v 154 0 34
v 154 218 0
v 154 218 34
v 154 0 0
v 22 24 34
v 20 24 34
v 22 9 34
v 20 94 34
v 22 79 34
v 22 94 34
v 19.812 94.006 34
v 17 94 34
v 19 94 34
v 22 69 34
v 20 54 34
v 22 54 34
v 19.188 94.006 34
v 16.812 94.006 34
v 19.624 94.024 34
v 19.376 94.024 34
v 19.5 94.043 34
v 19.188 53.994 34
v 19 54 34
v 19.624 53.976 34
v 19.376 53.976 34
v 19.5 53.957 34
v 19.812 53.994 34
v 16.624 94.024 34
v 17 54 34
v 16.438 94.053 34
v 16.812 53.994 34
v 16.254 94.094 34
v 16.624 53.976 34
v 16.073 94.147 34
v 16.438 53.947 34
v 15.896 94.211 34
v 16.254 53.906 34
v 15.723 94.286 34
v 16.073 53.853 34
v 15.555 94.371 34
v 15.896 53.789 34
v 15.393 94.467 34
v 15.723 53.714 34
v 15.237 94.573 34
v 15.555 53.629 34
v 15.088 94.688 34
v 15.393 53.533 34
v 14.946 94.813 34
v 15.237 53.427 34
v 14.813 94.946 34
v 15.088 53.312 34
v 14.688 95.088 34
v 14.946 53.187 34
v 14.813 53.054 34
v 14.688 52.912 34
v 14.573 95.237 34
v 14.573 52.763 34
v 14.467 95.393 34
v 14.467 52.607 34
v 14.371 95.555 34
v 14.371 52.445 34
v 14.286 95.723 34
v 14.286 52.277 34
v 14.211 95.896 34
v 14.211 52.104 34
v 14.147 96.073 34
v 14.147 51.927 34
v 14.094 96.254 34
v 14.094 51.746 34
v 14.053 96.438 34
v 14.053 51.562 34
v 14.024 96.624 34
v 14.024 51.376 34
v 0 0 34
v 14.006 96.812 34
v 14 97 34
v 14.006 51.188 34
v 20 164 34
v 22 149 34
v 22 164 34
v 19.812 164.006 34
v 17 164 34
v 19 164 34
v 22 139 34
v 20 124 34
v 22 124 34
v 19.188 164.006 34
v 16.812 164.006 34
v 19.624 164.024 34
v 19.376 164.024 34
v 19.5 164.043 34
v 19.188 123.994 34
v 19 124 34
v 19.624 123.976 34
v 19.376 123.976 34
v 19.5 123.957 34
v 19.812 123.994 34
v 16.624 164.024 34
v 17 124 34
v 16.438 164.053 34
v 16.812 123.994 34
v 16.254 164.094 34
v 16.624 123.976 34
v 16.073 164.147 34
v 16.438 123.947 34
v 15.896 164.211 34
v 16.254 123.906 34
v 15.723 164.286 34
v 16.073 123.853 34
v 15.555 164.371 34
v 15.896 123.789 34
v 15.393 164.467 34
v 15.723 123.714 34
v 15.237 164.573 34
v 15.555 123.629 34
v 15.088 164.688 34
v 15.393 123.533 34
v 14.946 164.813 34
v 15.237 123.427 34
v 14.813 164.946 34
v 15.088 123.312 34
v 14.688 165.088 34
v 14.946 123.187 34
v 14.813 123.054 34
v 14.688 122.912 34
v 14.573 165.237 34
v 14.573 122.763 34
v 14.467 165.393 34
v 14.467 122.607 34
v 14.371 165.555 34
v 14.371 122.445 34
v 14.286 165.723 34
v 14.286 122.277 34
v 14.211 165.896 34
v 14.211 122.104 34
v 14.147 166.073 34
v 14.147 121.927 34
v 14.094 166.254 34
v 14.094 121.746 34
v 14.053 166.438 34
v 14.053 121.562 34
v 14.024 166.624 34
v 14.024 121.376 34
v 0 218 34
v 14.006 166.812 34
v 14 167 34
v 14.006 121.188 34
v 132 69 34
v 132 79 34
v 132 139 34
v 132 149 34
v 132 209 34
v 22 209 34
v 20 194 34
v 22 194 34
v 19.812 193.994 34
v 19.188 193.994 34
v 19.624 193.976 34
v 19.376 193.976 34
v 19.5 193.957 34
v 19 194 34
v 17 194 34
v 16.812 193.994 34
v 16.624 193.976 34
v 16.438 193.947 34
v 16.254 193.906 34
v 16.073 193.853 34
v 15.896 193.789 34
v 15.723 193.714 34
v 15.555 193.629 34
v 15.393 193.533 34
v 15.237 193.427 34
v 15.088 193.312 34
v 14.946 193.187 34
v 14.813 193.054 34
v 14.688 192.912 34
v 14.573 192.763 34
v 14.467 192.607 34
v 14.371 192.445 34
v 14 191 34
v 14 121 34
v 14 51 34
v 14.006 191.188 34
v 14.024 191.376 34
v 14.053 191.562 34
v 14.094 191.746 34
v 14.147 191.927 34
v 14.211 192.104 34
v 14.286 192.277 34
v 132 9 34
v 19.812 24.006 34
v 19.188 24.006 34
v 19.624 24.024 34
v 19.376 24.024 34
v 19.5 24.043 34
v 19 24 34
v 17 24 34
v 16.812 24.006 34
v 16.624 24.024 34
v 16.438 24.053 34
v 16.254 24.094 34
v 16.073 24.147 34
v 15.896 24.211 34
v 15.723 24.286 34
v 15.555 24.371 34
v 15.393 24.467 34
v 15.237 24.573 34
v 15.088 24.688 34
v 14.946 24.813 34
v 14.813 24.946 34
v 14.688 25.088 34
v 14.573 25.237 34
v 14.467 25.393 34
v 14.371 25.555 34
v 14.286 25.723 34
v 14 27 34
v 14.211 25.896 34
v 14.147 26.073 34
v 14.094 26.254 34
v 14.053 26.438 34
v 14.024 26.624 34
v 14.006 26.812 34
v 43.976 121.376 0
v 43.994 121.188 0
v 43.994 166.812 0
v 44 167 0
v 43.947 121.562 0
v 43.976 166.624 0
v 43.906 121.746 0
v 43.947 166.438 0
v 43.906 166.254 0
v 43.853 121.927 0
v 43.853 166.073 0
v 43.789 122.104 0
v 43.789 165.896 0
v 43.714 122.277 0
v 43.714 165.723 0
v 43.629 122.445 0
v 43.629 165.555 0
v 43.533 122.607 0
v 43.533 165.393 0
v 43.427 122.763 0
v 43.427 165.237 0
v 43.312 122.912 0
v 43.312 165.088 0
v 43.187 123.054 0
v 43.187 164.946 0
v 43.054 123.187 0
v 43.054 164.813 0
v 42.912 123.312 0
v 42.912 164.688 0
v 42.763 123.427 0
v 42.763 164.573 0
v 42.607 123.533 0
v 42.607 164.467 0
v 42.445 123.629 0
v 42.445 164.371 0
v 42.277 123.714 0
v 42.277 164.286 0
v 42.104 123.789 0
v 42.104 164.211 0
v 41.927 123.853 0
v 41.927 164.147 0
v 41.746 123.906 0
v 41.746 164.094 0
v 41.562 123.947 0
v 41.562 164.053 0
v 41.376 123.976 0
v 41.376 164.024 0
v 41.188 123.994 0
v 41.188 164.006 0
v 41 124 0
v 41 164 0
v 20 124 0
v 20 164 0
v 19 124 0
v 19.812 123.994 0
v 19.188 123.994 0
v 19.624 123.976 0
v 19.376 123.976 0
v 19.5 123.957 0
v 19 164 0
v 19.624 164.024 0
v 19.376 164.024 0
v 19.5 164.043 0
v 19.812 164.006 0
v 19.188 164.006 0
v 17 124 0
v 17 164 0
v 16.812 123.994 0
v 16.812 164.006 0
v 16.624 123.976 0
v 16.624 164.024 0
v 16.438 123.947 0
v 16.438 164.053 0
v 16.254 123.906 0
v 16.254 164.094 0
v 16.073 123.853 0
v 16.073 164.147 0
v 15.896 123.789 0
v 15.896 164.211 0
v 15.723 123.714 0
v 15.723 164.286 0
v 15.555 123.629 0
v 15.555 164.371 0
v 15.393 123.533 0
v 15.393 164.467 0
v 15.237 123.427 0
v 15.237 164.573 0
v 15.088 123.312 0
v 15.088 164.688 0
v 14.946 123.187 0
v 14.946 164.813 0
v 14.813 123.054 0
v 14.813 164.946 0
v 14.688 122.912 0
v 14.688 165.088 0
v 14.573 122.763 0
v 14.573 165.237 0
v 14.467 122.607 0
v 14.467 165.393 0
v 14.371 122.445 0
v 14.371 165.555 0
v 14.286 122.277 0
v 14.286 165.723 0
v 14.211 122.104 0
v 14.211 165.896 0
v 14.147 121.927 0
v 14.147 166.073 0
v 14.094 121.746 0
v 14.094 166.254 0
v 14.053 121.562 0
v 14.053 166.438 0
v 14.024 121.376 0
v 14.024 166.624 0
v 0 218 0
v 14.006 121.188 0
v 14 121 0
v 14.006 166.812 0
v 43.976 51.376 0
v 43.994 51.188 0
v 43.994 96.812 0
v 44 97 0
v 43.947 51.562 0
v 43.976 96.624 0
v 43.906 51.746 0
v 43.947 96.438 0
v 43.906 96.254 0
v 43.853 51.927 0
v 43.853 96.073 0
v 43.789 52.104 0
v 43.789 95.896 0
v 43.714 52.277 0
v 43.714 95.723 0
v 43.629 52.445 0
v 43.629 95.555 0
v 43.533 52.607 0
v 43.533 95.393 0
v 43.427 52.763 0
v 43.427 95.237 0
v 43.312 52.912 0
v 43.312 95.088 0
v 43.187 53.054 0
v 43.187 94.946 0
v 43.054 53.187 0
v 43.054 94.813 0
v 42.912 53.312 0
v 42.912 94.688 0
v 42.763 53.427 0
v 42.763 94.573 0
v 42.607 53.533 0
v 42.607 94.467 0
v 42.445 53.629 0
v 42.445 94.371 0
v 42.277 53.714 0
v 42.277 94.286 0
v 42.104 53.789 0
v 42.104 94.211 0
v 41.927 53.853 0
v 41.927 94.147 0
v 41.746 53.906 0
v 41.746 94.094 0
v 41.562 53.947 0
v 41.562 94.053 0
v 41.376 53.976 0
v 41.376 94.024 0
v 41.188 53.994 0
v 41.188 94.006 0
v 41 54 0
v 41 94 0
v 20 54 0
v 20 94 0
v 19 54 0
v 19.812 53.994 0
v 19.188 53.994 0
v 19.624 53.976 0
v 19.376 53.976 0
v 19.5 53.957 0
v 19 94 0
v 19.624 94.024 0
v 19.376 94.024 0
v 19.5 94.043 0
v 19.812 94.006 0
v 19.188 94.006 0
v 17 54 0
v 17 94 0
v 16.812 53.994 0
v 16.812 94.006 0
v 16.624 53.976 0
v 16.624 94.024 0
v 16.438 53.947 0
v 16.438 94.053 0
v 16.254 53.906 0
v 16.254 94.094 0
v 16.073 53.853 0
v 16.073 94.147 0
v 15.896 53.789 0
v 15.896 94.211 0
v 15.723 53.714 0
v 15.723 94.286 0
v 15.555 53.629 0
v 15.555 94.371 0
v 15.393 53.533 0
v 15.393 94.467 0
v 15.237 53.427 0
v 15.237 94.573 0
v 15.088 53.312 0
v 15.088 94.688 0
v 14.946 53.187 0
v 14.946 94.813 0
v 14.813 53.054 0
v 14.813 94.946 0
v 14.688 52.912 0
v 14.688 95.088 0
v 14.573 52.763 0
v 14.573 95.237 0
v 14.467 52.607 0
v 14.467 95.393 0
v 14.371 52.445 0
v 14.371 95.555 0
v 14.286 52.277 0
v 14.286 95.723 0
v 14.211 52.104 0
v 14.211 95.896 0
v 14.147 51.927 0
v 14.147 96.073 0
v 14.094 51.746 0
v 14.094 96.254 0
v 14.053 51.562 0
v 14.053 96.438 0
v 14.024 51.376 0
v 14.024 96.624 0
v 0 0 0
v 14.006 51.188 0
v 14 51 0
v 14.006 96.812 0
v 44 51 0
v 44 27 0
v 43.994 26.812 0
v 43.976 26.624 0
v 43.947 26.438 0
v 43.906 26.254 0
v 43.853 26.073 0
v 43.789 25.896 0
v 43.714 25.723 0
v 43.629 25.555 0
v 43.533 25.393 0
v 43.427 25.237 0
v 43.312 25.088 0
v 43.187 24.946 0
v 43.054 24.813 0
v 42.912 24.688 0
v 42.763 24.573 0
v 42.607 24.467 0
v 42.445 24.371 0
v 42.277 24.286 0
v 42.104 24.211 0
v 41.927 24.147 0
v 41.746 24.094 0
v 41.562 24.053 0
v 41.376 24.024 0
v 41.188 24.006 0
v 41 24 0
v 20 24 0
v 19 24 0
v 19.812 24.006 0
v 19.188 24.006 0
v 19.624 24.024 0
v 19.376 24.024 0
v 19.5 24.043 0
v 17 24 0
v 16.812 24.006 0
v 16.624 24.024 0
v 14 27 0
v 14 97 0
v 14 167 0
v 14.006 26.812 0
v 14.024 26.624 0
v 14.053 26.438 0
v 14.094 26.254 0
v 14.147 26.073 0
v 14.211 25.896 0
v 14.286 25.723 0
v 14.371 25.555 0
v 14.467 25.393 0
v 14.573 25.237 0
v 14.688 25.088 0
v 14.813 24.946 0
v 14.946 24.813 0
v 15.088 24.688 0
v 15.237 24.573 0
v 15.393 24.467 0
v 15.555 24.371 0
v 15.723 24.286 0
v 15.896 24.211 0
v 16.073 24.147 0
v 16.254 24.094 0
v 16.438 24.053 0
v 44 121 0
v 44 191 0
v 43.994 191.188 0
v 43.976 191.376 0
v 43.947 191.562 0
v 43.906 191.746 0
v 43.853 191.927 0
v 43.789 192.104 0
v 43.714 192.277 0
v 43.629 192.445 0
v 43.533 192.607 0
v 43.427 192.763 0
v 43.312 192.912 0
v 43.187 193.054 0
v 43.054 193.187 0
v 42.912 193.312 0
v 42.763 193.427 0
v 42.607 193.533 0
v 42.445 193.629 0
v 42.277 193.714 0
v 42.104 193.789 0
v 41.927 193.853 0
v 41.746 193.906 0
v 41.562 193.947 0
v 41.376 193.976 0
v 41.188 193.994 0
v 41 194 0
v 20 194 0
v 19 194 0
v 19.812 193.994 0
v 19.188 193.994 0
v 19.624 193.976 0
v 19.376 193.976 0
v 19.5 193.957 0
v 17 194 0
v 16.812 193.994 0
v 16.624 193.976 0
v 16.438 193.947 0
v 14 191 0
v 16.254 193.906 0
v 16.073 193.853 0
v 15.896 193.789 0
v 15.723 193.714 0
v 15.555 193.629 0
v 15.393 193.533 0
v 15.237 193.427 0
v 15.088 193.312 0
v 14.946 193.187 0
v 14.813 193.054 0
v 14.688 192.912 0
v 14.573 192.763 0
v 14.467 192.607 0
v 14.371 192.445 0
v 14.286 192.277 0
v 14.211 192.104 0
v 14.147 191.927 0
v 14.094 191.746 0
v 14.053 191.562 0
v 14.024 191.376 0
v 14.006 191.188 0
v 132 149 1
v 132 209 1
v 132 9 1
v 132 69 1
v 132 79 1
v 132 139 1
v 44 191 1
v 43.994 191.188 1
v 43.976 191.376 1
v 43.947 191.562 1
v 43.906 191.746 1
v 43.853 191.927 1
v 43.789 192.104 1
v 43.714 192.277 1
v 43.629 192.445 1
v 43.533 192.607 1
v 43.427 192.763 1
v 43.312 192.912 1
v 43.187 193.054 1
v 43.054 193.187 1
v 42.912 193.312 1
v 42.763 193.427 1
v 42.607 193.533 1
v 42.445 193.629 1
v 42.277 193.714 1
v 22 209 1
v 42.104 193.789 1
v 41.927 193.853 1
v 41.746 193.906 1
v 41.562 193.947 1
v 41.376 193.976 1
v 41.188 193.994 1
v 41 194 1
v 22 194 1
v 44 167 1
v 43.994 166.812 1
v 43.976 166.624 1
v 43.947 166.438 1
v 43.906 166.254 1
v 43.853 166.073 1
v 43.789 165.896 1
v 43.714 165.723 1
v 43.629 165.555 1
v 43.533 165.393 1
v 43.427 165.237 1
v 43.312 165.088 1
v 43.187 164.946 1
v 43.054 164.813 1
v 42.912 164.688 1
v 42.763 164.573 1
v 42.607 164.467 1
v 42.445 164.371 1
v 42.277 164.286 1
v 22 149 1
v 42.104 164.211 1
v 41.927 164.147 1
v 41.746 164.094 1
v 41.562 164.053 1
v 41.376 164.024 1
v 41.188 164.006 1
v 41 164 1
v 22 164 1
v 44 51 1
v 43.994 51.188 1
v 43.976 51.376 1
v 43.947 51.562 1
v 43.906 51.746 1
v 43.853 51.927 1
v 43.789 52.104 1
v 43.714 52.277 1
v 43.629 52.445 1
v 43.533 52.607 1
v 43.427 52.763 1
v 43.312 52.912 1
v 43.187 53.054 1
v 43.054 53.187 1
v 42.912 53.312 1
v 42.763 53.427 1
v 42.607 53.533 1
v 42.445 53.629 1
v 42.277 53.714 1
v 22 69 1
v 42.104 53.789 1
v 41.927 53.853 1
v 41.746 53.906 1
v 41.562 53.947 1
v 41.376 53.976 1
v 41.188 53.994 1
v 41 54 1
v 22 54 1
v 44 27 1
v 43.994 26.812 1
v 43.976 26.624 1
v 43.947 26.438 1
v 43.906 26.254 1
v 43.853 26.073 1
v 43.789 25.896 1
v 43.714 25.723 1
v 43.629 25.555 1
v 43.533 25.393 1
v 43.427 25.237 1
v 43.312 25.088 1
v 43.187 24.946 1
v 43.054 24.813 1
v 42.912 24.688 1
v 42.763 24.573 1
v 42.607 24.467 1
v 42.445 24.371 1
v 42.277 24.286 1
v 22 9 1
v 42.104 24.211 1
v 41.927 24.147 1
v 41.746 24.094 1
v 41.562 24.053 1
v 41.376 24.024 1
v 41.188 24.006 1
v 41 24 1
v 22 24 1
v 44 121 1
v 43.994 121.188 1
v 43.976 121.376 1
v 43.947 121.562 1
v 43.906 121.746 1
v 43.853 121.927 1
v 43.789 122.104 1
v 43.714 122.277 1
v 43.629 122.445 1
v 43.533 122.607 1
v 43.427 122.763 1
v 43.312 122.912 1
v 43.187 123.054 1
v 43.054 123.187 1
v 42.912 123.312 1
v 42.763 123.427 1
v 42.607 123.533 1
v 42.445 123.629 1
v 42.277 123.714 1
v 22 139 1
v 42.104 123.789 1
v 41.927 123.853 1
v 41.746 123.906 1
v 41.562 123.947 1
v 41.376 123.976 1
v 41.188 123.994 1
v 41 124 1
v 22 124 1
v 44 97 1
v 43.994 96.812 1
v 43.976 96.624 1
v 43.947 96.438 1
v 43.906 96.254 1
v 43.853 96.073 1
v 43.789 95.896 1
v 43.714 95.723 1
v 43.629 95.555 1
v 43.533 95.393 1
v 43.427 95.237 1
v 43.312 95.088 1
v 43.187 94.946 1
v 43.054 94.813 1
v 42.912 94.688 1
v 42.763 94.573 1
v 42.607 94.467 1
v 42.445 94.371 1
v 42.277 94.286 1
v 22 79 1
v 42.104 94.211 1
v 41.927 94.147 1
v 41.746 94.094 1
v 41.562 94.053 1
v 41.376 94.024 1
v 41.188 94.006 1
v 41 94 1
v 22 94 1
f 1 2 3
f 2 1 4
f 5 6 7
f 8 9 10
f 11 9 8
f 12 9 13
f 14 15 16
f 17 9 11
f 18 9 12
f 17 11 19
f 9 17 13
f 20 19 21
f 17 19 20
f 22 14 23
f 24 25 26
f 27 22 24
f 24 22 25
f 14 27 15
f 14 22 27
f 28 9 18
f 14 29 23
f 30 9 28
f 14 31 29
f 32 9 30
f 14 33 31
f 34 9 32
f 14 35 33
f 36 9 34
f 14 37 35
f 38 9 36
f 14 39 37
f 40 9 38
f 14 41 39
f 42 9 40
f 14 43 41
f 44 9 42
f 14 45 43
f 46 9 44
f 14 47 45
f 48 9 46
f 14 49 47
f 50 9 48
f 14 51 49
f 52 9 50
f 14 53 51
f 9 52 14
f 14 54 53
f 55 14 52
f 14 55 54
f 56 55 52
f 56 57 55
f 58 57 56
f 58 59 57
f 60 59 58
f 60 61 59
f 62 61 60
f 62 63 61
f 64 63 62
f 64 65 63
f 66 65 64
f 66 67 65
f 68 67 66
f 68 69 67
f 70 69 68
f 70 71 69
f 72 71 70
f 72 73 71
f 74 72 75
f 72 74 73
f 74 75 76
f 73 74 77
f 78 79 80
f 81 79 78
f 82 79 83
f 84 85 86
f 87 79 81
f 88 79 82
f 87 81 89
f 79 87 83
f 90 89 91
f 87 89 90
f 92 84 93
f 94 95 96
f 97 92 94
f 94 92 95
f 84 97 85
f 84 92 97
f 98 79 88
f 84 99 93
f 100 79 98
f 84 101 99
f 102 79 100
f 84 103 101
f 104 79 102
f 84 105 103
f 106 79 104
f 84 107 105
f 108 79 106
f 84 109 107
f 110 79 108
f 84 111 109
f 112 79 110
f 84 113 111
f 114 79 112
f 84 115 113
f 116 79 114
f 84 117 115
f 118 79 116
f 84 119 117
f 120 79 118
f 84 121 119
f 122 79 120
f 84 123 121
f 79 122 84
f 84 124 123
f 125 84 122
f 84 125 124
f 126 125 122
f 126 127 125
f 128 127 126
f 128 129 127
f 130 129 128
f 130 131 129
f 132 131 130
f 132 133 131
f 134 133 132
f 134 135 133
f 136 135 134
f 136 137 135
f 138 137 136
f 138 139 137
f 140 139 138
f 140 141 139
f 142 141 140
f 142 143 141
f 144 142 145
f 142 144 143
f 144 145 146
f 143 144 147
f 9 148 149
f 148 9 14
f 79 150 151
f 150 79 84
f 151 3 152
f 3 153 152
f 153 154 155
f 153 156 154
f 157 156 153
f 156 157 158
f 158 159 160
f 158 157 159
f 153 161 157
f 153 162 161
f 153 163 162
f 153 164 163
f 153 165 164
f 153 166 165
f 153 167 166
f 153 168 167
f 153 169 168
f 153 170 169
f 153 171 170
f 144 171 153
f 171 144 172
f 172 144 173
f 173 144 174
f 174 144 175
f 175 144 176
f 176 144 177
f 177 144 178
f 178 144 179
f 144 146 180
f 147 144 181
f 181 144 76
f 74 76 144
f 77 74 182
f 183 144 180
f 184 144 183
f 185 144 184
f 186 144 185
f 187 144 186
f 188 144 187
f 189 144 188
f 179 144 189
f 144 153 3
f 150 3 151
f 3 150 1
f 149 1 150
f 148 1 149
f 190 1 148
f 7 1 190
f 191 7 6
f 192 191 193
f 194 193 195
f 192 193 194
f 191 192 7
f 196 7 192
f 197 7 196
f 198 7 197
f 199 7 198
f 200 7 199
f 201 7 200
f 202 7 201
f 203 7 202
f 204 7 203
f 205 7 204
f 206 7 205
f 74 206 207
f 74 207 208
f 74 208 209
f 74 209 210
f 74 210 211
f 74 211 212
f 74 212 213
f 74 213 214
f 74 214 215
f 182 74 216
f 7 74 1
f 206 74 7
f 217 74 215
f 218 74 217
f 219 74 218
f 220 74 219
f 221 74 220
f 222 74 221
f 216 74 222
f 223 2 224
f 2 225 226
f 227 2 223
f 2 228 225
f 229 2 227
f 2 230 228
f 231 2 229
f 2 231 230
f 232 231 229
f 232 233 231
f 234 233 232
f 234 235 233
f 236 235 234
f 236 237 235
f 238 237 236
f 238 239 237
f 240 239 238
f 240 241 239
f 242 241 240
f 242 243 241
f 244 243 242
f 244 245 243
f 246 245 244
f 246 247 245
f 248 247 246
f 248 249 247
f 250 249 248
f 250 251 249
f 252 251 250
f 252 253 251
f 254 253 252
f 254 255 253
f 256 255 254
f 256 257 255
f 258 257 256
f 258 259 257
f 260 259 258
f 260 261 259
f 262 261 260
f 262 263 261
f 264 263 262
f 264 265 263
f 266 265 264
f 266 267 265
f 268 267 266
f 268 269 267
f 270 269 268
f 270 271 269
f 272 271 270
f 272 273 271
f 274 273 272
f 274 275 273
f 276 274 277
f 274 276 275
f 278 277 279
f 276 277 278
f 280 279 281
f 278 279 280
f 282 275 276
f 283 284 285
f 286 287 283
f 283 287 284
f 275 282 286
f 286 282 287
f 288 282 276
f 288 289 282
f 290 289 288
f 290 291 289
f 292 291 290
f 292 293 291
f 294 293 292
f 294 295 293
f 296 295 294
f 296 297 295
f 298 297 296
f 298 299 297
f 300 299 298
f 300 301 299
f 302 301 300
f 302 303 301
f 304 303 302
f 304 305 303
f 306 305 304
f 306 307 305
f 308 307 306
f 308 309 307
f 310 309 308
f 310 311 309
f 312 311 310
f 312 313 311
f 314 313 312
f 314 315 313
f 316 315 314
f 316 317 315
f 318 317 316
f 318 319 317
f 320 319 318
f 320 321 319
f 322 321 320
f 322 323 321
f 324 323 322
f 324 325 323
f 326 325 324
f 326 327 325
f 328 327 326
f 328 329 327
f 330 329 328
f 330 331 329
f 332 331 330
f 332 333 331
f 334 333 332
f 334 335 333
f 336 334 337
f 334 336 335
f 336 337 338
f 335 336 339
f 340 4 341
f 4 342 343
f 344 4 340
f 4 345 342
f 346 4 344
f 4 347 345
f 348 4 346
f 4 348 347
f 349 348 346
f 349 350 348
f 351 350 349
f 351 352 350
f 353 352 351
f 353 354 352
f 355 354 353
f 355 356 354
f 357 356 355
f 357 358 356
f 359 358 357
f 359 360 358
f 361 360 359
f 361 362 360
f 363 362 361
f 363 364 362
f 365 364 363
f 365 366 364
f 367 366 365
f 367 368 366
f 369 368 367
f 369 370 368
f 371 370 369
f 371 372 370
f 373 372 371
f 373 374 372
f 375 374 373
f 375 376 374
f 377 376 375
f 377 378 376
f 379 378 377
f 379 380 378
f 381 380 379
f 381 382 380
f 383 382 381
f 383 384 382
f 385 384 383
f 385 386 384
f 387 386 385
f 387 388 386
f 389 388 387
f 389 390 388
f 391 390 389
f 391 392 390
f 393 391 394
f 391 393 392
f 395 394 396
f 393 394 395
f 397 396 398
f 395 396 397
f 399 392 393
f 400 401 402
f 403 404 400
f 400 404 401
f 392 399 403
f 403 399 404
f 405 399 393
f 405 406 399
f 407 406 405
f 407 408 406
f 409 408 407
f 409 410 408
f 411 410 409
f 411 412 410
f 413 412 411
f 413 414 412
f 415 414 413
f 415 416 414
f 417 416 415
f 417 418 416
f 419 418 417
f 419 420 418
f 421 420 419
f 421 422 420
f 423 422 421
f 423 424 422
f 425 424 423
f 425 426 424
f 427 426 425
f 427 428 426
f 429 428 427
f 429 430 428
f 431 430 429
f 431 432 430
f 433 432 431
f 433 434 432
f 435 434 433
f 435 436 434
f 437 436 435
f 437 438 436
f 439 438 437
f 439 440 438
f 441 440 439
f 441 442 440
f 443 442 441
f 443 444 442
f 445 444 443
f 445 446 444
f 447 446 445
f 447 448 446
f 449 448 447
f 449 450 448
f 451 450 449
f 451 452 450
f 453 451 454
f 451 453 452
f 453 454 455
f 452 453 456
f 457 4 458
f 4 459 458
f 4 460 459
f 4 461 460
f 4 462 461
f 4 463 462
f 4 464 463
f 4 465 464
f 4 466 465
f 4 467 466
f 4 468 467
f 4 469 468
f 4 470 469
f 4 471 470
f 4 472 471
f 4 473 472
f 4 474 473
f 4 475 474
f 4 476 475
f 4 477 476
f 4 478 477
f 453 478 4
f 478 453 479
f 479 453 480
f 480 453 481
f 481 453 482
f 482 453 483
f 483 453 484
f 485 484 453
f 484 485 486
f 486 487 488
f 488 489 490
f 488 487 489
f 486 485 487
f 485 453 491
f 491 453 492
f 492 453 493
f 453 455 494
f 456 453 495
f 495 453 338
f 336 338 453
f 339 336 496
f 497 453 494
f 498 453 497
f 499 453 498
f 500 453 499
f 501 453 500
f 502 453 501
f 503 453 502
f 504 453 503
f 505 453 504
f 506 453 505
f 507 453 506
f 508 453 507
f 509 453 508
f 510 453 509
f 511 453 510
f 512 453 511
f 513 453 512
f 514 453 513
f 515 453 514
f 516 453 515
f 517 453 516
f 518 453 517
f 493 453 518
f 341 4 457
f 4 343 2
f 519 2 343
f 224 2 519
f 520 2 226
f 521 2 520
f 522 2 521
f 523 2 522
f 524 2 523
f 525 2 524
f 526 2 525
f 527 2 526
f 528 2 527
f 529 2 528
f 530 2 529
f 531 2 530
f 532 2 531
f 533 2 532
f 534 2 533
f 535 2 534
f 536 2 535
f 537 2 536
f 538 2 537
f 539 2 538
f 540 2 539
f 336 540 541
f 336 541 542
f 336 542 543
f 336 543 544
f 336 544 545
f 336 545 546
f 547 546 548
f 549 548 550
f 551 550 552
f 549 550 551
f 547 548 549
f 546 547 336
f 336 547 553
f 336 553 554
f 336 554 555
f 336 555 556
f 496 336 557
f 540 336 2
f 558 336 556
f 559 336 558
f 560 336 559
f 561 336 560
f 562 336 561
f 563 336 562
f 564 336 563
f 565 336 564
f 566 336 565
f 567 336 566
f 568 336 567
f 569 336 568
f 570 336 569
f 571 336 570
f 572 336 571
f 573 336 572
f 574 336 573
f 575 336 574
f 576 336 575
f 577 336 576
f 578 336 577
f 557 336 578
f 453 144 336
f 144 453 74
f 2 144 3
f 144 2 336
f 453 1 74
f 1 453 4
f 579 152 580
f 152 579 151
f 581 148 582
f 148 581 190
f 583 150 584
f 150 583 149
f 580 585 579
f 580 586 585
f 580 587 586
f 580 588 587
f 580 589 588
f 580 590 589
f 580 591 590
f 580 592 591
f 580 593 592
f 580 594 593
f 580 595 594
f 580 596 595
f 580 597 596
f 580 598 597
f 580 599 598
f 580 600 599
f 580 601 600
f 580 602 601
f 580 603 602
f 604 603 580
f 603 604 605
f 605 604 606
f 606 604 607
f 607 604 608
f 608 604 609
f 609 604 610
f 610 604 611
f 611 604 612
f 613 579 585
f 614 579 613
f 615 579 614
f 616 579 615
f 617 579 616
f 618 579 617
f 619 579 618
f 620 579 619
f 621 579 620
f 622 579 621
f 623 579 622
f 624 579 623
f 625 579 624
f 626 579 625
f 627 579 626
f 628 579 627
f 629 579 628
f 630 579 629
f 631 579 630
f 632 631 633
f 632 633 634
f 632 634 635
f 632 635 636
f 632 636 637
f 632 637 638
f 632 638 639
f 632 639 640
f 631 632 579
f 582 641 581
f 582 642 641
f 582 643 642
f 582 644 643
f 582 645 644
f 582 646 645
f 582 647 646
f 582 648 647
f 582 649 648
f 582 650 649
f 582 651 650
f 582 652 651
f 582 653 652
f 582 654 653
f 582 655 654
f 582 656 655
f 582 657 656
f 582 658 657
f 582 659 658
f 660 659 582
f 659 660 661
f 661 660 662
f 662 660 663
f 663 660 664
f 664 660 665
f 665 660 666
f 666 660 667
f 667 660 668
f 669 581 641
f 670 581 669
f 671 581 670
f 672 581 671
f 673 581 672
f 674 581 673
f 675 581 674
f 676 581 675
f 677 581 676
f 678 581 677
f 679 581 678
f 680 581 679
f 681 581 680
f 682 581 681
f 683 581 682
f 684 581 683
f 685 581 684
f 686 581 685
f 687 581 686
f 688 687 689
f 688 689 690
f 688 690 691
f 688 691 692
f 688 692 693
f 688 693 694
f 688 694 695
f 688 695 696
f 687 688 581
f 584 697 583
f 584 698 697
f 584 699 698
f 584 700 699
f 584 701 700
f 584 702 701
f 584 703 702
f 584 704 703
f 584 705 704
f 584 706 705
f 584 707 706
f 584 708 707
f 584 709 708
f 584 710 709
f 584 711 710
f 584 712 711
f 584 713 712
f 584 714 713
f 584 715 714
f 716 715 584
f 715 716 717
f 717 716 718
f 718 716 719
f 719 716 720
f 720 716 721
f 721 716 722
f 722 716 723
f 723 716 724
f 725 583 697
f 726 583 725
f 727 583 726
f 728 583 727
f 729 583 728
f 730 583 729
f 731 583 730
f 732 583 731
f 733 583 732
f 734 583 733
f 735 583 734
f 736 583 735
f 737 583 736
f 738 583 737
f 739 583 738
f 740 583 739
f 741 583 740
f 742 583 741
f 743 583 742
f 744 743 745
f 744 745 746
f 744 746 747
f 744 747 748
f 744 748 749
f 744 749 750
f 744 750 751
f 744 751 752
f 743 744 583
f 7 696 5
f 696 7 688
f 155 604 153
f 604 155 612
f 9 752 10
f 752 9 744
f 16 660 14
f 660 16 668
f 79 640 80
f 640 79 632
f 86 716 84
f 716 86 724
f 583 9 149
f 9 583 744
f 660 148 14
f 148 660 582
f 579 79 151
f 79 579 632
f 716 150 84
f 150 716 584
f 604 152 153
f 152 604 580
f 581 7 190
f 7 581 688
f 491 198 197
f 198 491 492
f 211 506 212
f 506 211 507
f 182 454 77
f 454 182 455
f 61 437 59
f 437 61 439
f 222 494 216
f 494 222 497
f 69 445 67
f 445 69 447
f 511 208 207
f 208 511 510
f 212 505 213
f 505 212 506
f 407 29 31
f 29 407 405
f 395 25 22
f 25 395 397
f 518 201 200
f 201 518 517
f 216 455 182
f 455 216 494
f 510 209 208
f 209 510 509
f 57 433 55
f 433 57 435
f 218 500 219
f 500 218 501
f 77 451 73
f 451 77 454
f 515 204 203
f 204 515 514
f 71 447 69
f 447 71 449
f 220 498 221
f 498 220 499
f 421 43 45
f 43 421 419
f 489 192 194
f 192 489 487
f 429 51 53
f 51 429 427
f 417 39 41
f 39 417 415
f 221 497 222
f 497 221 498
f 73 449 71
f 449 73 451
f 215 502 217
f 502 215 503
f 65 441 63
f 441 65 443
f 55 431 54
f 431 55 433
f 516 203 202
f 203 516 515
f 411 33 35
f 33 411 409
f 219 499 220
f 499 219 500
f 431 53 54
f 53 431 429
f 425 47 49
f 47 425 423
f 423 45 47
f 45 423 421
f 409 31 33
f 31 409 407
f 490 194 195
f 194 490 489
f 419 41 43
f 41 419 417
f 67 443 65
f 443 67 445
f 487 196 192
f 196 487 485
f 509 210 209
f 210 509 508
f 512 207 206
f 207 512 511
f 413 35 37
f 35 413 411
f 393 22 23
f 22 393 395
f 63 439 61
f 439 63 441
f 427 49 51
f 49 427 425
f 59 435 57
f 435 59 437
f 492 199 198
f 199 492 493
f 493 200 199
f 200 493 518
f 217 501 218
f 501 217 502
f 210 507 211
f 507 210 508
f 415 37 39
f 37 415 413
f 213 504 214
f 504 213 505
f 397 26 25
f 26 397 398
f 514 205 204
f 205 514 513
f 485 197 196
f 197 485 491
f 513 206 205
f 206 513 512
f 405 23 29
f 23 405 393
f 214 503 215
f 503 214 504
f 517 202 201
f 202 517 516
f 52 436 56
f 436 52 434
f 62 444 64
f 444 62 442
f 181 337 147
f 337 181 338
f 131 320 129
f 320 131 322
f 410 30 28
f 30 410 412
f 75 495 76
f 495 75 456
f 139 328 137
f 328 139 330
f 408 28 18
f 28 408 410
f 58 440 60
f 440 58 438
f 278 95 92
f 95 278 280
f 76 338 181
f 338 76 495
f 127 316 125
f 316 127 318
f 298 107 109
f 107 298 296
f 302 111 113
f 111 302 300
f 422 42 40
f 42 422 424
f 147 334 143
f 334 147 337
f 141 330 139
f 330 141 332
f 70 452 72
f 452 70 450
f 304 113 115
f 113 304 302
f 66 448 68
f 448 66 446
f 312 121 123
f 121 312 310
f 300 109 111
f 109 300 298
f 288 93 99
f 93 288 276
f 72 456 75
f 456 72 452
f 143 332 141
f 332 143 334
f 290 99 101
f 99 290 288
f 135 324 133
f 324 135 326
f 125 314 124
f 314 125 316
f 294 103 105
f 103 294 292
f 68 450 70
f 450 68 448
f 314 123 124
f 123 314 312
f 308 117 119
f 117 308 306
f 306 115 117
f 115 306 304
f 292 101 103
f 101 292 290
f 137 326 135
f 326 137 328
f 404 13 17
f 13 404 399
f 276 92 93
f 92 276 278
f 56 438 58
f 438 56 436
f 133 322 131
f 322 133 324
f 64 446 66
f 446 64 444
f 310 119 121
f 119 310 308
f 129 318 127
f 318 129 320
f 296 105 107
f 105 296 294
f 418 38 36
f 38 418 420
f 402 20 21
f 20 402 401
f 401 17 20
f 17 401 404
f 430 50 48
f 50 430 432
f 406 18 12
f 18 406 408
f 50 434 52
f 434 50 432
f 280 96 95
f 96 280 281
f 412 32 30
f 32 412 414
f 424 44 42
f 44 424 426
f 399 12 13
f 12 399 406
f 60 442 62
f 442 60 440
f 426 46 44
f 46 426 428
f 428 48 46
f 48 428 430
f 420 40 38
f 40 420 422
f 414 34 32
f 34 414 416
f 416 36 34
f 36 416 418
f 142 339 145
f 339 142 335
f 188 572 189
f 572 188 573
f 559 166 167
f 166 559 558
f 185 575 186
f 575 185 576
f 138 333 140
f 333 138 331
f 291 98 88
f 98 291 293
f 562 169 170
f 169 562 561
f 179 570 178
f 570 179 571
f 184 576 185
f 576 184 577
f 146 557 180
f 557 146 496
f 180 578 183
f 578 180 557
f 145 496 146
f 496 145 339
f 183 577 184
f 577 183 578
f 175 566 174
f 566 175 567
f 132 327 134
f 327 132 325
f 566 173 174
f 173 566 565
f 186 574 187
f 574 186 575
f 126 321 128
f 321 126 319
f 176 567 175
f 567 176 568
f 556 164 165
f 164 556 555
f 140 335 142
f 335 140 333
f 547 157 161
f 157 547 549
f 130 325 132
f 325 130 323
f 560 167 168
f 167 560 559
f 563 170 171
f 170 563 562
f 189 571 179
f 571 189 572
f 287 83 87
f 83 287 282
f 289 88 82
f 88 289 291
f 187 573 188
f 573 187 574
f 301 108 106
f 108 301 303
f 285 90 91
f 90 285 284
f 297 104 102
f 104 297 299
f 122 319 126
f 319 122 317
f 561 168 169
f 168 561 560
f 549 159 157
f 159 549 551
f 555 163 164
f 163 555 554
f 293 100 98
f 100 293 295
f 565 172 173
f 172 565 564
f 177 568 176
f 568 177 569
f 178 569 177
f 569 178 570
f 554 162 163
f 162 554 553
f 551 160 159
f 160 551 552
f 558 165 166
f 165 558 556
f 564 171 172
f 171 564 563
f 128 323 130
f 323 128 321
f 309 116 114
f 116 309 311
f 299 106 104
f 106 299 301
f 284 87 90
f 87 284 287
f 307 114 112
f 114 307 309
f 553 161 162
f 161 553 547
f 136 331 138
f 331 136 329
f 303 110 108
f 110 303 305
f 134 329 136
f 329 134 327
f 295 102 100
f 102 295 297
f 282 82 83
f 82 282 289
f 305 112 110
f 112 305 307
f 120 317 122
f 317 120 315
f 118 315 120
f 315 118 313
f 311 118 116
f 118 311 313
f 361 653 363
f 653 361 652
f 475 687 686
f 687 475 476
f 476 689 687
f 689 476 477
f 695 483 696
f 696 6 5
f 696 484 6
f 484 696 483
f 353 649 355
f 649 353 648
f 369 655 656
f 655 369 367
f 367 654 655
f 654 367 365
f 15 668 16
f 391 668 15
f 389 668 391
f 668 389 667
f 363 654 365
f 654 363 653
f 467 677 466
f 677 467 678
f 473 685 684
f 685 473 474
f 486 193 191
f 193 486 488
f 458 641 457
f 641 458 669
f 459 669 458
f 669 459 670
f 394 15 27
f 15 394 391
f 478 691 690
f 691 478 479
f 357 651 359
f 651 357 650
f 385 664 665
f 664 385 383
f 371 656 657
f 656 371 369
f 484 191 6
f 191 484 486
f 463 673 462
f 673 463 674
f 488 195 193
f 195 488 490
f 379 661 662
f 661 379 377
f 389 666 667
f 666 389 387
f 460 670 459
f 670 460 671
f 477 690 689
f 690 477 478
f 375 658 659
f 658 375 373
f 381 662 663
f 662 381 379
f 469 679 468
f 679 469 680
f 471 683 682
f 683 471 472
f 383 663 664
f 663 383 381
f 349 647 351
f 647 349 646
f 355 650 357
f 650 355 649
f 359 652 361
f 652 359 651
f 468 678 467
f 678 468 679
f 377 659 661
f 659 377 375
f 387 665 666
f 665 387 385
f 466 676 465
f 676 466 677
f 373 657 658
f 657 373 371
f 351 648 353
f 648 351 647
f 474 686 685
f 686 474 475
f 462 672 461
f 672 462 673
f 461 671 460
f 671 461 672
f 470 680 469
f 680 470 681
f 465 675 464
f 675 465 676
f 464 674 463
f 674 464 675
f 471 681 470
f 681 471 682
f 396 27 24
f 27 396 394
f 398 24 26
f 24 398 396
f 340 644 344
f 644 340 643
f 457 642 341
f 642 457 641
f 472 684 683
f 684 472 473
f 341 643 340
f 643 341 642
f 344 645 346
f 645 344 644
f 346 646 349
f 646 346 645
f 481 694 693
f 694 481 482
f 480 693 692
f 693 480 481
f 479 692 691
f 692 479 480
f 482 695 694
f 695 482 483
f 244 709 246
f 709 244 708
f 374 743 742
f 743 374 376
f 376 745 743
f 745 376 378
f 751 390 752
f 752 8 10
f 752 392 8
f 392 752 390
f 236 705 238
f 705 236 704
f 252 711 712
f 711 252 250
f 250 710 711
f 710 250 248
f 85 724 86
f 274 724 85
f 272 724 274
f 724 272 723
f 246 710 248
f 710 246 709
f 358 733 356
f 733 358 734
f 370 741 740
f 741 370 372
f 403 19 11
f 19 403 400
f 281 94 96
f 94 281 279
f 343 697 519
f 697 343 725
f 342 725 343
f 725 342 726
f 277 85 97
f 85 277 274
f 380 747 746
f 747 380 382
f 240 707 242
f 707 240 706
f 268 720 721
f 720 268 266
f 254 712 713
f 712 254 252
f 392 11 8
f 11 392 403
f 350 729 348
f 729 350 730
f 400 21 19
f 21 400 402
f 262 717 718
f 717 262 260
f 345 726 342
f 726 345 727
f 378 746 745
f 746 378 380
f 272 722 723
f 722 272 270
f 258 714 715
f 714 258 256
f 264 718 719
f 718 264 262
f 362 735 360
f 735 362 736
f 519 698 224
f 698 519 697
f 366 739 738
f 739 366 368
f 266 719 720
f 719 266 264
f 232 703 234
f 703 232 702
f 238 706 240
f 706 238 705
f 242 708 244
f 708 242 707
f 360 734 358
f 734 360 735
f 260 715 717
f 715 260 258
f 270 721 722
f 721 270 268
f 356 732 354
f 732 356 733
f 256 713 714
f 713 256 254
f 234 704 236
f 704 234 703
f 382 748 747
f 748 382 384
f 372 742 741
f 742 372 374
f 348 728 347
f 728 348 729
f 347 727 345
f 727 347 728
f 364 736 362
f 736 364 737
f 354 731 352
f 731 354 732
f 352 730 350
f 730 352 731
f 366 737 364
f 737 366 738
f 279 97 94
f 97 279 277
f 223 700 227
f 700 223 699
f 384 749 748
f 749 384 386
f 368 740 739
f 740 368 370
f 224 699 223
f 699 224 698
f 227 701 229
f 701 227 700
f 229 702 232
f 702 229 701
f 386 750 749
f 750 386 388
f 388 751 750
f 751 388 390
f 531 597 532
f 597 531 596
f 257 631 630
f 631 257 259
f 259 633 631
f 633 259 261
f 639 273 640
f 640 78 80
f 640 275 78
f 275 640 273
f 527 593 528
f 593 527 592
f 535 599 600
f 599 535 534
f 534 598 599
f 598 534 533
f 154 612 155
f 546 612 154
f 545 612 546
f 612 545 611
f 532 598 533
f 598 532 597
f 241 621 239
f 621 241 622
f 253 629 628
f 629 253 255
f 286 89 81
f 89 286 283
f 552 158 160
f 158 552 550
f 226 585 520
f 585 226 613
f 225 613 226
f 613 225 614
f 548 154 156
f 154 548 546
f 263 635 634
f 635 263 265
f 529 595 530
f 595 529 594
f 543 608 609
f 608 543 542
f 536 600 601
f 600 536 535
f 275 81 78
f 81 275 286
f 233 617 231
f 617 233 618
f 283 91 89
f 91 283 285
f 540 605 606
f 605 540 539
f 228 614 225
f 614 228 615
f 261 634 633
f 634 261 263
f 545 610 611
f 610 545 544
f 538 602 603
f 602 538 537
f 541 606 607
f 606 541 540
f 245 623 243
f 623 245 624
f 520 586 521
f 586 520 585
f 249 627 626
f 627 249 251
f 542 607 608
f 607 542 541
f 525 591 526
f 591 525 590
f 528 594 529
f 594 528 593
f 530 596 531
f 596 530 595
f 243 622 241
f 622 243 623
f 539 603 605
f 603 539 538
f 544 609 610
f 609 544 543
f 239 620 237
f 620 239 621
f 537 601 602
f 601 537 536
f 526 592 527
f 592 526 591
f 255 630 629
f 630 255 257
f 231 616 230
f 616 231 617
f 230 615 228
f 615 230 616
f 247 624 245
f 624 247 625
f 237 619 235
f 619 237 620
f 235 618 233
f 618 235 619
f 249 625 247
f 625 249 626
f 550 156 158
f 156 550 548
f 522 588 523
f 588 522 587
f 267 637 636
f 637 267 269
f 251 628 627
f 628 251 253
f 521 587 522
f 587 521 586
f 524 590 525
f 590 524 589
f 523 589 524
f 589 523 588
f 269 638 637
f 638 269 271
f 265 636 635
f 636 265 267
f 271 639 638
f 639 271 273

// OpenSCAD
include <boardgame_insert_toolkit_lib.2.scad>;

// determines whether lids are output.
g_b_print_lid = true;

// determines whether boxes are output.
g_b_print_box = true; 

// Focus on one box
g_isolated_print_box = ""; 

// Used to visualize how all of the boxes fit together. 
g_b_visualization = false;          
        
// this is the outer wall thickness. 
//Default = 1.5mm
g_wall_thickness = 1.0;

// The tolerance value is extra space put between planes of the lid and box that fit together.
// Increase the tolerance to loosen the fit and decrease it to tighten it.
//
// Note that the tolerance is applied exclusively to the lid.
// So if the lid is too tight or too loose, change this value ( up for looser fit, down for tighter fit ) and 
// you only need to reprint the lid.
// 
// The exception is the stackable box, where the bottom of the box is the lid of the box below,
// in which case the tolerance also affects that box bottom.
//
g_tolerance = 0.15;

// This adjusts the position of the lid detents downward. 
// The larger the value, the bigger the gap between the lid and the box.
g_tolerance_detents_pos = 0.1;

aw_size_x = 154; // 180.0; // 308.0 - 40.0 - 40.0 - 24.0 - 24.0 - 24.0 = 156 (minus two for division by 3) = 156;
aw_size_y = 218.0;
aw_size_z = 34.0;


data =
  [
    [
      "simple box",
      [
        [ BOX_SIZE_XYZ, [aw_size_x, aw_size_y, aw_size_z] ],
        [ BOX_NO_LID_B, t],
        [
          BOX_COMPONENT,
          [
            [
              CMP_COMPARTMENT_SIZE_XYZ,
              [
                110,
                60,
                aw_size_z - g_wall_thickness
              ]
            ],
            [ CMP_NUM_COMPARTMENTS_XY, [1, 3] ],
            [ CMP_PADDING_XY,           [10,10]],
            [ POSITION_XY, [CENTER, CENTER] ],
            [ CMP_CUTOUT_SIDES_4B,   [f,f,t,f]],
            [ CMP_CUTOUT_DEPTH_PCT,  20],
            [ CMP_CUTOUT_WIDTH_PCT,  50],
            [ CMP_CUTOUT_HEIGHT_PCT, 100], 
            [ CMP_CUTOUT_TYPE, BOTH ]
            //,
            //[ CMP_CUTOUT_BOTTOM_B, t ],
            //[ CMP_CUTOUT_BOTTOM_PCT, 50 ]
          ]
        ],
      ]
    ]
  ];

MakeAll();
